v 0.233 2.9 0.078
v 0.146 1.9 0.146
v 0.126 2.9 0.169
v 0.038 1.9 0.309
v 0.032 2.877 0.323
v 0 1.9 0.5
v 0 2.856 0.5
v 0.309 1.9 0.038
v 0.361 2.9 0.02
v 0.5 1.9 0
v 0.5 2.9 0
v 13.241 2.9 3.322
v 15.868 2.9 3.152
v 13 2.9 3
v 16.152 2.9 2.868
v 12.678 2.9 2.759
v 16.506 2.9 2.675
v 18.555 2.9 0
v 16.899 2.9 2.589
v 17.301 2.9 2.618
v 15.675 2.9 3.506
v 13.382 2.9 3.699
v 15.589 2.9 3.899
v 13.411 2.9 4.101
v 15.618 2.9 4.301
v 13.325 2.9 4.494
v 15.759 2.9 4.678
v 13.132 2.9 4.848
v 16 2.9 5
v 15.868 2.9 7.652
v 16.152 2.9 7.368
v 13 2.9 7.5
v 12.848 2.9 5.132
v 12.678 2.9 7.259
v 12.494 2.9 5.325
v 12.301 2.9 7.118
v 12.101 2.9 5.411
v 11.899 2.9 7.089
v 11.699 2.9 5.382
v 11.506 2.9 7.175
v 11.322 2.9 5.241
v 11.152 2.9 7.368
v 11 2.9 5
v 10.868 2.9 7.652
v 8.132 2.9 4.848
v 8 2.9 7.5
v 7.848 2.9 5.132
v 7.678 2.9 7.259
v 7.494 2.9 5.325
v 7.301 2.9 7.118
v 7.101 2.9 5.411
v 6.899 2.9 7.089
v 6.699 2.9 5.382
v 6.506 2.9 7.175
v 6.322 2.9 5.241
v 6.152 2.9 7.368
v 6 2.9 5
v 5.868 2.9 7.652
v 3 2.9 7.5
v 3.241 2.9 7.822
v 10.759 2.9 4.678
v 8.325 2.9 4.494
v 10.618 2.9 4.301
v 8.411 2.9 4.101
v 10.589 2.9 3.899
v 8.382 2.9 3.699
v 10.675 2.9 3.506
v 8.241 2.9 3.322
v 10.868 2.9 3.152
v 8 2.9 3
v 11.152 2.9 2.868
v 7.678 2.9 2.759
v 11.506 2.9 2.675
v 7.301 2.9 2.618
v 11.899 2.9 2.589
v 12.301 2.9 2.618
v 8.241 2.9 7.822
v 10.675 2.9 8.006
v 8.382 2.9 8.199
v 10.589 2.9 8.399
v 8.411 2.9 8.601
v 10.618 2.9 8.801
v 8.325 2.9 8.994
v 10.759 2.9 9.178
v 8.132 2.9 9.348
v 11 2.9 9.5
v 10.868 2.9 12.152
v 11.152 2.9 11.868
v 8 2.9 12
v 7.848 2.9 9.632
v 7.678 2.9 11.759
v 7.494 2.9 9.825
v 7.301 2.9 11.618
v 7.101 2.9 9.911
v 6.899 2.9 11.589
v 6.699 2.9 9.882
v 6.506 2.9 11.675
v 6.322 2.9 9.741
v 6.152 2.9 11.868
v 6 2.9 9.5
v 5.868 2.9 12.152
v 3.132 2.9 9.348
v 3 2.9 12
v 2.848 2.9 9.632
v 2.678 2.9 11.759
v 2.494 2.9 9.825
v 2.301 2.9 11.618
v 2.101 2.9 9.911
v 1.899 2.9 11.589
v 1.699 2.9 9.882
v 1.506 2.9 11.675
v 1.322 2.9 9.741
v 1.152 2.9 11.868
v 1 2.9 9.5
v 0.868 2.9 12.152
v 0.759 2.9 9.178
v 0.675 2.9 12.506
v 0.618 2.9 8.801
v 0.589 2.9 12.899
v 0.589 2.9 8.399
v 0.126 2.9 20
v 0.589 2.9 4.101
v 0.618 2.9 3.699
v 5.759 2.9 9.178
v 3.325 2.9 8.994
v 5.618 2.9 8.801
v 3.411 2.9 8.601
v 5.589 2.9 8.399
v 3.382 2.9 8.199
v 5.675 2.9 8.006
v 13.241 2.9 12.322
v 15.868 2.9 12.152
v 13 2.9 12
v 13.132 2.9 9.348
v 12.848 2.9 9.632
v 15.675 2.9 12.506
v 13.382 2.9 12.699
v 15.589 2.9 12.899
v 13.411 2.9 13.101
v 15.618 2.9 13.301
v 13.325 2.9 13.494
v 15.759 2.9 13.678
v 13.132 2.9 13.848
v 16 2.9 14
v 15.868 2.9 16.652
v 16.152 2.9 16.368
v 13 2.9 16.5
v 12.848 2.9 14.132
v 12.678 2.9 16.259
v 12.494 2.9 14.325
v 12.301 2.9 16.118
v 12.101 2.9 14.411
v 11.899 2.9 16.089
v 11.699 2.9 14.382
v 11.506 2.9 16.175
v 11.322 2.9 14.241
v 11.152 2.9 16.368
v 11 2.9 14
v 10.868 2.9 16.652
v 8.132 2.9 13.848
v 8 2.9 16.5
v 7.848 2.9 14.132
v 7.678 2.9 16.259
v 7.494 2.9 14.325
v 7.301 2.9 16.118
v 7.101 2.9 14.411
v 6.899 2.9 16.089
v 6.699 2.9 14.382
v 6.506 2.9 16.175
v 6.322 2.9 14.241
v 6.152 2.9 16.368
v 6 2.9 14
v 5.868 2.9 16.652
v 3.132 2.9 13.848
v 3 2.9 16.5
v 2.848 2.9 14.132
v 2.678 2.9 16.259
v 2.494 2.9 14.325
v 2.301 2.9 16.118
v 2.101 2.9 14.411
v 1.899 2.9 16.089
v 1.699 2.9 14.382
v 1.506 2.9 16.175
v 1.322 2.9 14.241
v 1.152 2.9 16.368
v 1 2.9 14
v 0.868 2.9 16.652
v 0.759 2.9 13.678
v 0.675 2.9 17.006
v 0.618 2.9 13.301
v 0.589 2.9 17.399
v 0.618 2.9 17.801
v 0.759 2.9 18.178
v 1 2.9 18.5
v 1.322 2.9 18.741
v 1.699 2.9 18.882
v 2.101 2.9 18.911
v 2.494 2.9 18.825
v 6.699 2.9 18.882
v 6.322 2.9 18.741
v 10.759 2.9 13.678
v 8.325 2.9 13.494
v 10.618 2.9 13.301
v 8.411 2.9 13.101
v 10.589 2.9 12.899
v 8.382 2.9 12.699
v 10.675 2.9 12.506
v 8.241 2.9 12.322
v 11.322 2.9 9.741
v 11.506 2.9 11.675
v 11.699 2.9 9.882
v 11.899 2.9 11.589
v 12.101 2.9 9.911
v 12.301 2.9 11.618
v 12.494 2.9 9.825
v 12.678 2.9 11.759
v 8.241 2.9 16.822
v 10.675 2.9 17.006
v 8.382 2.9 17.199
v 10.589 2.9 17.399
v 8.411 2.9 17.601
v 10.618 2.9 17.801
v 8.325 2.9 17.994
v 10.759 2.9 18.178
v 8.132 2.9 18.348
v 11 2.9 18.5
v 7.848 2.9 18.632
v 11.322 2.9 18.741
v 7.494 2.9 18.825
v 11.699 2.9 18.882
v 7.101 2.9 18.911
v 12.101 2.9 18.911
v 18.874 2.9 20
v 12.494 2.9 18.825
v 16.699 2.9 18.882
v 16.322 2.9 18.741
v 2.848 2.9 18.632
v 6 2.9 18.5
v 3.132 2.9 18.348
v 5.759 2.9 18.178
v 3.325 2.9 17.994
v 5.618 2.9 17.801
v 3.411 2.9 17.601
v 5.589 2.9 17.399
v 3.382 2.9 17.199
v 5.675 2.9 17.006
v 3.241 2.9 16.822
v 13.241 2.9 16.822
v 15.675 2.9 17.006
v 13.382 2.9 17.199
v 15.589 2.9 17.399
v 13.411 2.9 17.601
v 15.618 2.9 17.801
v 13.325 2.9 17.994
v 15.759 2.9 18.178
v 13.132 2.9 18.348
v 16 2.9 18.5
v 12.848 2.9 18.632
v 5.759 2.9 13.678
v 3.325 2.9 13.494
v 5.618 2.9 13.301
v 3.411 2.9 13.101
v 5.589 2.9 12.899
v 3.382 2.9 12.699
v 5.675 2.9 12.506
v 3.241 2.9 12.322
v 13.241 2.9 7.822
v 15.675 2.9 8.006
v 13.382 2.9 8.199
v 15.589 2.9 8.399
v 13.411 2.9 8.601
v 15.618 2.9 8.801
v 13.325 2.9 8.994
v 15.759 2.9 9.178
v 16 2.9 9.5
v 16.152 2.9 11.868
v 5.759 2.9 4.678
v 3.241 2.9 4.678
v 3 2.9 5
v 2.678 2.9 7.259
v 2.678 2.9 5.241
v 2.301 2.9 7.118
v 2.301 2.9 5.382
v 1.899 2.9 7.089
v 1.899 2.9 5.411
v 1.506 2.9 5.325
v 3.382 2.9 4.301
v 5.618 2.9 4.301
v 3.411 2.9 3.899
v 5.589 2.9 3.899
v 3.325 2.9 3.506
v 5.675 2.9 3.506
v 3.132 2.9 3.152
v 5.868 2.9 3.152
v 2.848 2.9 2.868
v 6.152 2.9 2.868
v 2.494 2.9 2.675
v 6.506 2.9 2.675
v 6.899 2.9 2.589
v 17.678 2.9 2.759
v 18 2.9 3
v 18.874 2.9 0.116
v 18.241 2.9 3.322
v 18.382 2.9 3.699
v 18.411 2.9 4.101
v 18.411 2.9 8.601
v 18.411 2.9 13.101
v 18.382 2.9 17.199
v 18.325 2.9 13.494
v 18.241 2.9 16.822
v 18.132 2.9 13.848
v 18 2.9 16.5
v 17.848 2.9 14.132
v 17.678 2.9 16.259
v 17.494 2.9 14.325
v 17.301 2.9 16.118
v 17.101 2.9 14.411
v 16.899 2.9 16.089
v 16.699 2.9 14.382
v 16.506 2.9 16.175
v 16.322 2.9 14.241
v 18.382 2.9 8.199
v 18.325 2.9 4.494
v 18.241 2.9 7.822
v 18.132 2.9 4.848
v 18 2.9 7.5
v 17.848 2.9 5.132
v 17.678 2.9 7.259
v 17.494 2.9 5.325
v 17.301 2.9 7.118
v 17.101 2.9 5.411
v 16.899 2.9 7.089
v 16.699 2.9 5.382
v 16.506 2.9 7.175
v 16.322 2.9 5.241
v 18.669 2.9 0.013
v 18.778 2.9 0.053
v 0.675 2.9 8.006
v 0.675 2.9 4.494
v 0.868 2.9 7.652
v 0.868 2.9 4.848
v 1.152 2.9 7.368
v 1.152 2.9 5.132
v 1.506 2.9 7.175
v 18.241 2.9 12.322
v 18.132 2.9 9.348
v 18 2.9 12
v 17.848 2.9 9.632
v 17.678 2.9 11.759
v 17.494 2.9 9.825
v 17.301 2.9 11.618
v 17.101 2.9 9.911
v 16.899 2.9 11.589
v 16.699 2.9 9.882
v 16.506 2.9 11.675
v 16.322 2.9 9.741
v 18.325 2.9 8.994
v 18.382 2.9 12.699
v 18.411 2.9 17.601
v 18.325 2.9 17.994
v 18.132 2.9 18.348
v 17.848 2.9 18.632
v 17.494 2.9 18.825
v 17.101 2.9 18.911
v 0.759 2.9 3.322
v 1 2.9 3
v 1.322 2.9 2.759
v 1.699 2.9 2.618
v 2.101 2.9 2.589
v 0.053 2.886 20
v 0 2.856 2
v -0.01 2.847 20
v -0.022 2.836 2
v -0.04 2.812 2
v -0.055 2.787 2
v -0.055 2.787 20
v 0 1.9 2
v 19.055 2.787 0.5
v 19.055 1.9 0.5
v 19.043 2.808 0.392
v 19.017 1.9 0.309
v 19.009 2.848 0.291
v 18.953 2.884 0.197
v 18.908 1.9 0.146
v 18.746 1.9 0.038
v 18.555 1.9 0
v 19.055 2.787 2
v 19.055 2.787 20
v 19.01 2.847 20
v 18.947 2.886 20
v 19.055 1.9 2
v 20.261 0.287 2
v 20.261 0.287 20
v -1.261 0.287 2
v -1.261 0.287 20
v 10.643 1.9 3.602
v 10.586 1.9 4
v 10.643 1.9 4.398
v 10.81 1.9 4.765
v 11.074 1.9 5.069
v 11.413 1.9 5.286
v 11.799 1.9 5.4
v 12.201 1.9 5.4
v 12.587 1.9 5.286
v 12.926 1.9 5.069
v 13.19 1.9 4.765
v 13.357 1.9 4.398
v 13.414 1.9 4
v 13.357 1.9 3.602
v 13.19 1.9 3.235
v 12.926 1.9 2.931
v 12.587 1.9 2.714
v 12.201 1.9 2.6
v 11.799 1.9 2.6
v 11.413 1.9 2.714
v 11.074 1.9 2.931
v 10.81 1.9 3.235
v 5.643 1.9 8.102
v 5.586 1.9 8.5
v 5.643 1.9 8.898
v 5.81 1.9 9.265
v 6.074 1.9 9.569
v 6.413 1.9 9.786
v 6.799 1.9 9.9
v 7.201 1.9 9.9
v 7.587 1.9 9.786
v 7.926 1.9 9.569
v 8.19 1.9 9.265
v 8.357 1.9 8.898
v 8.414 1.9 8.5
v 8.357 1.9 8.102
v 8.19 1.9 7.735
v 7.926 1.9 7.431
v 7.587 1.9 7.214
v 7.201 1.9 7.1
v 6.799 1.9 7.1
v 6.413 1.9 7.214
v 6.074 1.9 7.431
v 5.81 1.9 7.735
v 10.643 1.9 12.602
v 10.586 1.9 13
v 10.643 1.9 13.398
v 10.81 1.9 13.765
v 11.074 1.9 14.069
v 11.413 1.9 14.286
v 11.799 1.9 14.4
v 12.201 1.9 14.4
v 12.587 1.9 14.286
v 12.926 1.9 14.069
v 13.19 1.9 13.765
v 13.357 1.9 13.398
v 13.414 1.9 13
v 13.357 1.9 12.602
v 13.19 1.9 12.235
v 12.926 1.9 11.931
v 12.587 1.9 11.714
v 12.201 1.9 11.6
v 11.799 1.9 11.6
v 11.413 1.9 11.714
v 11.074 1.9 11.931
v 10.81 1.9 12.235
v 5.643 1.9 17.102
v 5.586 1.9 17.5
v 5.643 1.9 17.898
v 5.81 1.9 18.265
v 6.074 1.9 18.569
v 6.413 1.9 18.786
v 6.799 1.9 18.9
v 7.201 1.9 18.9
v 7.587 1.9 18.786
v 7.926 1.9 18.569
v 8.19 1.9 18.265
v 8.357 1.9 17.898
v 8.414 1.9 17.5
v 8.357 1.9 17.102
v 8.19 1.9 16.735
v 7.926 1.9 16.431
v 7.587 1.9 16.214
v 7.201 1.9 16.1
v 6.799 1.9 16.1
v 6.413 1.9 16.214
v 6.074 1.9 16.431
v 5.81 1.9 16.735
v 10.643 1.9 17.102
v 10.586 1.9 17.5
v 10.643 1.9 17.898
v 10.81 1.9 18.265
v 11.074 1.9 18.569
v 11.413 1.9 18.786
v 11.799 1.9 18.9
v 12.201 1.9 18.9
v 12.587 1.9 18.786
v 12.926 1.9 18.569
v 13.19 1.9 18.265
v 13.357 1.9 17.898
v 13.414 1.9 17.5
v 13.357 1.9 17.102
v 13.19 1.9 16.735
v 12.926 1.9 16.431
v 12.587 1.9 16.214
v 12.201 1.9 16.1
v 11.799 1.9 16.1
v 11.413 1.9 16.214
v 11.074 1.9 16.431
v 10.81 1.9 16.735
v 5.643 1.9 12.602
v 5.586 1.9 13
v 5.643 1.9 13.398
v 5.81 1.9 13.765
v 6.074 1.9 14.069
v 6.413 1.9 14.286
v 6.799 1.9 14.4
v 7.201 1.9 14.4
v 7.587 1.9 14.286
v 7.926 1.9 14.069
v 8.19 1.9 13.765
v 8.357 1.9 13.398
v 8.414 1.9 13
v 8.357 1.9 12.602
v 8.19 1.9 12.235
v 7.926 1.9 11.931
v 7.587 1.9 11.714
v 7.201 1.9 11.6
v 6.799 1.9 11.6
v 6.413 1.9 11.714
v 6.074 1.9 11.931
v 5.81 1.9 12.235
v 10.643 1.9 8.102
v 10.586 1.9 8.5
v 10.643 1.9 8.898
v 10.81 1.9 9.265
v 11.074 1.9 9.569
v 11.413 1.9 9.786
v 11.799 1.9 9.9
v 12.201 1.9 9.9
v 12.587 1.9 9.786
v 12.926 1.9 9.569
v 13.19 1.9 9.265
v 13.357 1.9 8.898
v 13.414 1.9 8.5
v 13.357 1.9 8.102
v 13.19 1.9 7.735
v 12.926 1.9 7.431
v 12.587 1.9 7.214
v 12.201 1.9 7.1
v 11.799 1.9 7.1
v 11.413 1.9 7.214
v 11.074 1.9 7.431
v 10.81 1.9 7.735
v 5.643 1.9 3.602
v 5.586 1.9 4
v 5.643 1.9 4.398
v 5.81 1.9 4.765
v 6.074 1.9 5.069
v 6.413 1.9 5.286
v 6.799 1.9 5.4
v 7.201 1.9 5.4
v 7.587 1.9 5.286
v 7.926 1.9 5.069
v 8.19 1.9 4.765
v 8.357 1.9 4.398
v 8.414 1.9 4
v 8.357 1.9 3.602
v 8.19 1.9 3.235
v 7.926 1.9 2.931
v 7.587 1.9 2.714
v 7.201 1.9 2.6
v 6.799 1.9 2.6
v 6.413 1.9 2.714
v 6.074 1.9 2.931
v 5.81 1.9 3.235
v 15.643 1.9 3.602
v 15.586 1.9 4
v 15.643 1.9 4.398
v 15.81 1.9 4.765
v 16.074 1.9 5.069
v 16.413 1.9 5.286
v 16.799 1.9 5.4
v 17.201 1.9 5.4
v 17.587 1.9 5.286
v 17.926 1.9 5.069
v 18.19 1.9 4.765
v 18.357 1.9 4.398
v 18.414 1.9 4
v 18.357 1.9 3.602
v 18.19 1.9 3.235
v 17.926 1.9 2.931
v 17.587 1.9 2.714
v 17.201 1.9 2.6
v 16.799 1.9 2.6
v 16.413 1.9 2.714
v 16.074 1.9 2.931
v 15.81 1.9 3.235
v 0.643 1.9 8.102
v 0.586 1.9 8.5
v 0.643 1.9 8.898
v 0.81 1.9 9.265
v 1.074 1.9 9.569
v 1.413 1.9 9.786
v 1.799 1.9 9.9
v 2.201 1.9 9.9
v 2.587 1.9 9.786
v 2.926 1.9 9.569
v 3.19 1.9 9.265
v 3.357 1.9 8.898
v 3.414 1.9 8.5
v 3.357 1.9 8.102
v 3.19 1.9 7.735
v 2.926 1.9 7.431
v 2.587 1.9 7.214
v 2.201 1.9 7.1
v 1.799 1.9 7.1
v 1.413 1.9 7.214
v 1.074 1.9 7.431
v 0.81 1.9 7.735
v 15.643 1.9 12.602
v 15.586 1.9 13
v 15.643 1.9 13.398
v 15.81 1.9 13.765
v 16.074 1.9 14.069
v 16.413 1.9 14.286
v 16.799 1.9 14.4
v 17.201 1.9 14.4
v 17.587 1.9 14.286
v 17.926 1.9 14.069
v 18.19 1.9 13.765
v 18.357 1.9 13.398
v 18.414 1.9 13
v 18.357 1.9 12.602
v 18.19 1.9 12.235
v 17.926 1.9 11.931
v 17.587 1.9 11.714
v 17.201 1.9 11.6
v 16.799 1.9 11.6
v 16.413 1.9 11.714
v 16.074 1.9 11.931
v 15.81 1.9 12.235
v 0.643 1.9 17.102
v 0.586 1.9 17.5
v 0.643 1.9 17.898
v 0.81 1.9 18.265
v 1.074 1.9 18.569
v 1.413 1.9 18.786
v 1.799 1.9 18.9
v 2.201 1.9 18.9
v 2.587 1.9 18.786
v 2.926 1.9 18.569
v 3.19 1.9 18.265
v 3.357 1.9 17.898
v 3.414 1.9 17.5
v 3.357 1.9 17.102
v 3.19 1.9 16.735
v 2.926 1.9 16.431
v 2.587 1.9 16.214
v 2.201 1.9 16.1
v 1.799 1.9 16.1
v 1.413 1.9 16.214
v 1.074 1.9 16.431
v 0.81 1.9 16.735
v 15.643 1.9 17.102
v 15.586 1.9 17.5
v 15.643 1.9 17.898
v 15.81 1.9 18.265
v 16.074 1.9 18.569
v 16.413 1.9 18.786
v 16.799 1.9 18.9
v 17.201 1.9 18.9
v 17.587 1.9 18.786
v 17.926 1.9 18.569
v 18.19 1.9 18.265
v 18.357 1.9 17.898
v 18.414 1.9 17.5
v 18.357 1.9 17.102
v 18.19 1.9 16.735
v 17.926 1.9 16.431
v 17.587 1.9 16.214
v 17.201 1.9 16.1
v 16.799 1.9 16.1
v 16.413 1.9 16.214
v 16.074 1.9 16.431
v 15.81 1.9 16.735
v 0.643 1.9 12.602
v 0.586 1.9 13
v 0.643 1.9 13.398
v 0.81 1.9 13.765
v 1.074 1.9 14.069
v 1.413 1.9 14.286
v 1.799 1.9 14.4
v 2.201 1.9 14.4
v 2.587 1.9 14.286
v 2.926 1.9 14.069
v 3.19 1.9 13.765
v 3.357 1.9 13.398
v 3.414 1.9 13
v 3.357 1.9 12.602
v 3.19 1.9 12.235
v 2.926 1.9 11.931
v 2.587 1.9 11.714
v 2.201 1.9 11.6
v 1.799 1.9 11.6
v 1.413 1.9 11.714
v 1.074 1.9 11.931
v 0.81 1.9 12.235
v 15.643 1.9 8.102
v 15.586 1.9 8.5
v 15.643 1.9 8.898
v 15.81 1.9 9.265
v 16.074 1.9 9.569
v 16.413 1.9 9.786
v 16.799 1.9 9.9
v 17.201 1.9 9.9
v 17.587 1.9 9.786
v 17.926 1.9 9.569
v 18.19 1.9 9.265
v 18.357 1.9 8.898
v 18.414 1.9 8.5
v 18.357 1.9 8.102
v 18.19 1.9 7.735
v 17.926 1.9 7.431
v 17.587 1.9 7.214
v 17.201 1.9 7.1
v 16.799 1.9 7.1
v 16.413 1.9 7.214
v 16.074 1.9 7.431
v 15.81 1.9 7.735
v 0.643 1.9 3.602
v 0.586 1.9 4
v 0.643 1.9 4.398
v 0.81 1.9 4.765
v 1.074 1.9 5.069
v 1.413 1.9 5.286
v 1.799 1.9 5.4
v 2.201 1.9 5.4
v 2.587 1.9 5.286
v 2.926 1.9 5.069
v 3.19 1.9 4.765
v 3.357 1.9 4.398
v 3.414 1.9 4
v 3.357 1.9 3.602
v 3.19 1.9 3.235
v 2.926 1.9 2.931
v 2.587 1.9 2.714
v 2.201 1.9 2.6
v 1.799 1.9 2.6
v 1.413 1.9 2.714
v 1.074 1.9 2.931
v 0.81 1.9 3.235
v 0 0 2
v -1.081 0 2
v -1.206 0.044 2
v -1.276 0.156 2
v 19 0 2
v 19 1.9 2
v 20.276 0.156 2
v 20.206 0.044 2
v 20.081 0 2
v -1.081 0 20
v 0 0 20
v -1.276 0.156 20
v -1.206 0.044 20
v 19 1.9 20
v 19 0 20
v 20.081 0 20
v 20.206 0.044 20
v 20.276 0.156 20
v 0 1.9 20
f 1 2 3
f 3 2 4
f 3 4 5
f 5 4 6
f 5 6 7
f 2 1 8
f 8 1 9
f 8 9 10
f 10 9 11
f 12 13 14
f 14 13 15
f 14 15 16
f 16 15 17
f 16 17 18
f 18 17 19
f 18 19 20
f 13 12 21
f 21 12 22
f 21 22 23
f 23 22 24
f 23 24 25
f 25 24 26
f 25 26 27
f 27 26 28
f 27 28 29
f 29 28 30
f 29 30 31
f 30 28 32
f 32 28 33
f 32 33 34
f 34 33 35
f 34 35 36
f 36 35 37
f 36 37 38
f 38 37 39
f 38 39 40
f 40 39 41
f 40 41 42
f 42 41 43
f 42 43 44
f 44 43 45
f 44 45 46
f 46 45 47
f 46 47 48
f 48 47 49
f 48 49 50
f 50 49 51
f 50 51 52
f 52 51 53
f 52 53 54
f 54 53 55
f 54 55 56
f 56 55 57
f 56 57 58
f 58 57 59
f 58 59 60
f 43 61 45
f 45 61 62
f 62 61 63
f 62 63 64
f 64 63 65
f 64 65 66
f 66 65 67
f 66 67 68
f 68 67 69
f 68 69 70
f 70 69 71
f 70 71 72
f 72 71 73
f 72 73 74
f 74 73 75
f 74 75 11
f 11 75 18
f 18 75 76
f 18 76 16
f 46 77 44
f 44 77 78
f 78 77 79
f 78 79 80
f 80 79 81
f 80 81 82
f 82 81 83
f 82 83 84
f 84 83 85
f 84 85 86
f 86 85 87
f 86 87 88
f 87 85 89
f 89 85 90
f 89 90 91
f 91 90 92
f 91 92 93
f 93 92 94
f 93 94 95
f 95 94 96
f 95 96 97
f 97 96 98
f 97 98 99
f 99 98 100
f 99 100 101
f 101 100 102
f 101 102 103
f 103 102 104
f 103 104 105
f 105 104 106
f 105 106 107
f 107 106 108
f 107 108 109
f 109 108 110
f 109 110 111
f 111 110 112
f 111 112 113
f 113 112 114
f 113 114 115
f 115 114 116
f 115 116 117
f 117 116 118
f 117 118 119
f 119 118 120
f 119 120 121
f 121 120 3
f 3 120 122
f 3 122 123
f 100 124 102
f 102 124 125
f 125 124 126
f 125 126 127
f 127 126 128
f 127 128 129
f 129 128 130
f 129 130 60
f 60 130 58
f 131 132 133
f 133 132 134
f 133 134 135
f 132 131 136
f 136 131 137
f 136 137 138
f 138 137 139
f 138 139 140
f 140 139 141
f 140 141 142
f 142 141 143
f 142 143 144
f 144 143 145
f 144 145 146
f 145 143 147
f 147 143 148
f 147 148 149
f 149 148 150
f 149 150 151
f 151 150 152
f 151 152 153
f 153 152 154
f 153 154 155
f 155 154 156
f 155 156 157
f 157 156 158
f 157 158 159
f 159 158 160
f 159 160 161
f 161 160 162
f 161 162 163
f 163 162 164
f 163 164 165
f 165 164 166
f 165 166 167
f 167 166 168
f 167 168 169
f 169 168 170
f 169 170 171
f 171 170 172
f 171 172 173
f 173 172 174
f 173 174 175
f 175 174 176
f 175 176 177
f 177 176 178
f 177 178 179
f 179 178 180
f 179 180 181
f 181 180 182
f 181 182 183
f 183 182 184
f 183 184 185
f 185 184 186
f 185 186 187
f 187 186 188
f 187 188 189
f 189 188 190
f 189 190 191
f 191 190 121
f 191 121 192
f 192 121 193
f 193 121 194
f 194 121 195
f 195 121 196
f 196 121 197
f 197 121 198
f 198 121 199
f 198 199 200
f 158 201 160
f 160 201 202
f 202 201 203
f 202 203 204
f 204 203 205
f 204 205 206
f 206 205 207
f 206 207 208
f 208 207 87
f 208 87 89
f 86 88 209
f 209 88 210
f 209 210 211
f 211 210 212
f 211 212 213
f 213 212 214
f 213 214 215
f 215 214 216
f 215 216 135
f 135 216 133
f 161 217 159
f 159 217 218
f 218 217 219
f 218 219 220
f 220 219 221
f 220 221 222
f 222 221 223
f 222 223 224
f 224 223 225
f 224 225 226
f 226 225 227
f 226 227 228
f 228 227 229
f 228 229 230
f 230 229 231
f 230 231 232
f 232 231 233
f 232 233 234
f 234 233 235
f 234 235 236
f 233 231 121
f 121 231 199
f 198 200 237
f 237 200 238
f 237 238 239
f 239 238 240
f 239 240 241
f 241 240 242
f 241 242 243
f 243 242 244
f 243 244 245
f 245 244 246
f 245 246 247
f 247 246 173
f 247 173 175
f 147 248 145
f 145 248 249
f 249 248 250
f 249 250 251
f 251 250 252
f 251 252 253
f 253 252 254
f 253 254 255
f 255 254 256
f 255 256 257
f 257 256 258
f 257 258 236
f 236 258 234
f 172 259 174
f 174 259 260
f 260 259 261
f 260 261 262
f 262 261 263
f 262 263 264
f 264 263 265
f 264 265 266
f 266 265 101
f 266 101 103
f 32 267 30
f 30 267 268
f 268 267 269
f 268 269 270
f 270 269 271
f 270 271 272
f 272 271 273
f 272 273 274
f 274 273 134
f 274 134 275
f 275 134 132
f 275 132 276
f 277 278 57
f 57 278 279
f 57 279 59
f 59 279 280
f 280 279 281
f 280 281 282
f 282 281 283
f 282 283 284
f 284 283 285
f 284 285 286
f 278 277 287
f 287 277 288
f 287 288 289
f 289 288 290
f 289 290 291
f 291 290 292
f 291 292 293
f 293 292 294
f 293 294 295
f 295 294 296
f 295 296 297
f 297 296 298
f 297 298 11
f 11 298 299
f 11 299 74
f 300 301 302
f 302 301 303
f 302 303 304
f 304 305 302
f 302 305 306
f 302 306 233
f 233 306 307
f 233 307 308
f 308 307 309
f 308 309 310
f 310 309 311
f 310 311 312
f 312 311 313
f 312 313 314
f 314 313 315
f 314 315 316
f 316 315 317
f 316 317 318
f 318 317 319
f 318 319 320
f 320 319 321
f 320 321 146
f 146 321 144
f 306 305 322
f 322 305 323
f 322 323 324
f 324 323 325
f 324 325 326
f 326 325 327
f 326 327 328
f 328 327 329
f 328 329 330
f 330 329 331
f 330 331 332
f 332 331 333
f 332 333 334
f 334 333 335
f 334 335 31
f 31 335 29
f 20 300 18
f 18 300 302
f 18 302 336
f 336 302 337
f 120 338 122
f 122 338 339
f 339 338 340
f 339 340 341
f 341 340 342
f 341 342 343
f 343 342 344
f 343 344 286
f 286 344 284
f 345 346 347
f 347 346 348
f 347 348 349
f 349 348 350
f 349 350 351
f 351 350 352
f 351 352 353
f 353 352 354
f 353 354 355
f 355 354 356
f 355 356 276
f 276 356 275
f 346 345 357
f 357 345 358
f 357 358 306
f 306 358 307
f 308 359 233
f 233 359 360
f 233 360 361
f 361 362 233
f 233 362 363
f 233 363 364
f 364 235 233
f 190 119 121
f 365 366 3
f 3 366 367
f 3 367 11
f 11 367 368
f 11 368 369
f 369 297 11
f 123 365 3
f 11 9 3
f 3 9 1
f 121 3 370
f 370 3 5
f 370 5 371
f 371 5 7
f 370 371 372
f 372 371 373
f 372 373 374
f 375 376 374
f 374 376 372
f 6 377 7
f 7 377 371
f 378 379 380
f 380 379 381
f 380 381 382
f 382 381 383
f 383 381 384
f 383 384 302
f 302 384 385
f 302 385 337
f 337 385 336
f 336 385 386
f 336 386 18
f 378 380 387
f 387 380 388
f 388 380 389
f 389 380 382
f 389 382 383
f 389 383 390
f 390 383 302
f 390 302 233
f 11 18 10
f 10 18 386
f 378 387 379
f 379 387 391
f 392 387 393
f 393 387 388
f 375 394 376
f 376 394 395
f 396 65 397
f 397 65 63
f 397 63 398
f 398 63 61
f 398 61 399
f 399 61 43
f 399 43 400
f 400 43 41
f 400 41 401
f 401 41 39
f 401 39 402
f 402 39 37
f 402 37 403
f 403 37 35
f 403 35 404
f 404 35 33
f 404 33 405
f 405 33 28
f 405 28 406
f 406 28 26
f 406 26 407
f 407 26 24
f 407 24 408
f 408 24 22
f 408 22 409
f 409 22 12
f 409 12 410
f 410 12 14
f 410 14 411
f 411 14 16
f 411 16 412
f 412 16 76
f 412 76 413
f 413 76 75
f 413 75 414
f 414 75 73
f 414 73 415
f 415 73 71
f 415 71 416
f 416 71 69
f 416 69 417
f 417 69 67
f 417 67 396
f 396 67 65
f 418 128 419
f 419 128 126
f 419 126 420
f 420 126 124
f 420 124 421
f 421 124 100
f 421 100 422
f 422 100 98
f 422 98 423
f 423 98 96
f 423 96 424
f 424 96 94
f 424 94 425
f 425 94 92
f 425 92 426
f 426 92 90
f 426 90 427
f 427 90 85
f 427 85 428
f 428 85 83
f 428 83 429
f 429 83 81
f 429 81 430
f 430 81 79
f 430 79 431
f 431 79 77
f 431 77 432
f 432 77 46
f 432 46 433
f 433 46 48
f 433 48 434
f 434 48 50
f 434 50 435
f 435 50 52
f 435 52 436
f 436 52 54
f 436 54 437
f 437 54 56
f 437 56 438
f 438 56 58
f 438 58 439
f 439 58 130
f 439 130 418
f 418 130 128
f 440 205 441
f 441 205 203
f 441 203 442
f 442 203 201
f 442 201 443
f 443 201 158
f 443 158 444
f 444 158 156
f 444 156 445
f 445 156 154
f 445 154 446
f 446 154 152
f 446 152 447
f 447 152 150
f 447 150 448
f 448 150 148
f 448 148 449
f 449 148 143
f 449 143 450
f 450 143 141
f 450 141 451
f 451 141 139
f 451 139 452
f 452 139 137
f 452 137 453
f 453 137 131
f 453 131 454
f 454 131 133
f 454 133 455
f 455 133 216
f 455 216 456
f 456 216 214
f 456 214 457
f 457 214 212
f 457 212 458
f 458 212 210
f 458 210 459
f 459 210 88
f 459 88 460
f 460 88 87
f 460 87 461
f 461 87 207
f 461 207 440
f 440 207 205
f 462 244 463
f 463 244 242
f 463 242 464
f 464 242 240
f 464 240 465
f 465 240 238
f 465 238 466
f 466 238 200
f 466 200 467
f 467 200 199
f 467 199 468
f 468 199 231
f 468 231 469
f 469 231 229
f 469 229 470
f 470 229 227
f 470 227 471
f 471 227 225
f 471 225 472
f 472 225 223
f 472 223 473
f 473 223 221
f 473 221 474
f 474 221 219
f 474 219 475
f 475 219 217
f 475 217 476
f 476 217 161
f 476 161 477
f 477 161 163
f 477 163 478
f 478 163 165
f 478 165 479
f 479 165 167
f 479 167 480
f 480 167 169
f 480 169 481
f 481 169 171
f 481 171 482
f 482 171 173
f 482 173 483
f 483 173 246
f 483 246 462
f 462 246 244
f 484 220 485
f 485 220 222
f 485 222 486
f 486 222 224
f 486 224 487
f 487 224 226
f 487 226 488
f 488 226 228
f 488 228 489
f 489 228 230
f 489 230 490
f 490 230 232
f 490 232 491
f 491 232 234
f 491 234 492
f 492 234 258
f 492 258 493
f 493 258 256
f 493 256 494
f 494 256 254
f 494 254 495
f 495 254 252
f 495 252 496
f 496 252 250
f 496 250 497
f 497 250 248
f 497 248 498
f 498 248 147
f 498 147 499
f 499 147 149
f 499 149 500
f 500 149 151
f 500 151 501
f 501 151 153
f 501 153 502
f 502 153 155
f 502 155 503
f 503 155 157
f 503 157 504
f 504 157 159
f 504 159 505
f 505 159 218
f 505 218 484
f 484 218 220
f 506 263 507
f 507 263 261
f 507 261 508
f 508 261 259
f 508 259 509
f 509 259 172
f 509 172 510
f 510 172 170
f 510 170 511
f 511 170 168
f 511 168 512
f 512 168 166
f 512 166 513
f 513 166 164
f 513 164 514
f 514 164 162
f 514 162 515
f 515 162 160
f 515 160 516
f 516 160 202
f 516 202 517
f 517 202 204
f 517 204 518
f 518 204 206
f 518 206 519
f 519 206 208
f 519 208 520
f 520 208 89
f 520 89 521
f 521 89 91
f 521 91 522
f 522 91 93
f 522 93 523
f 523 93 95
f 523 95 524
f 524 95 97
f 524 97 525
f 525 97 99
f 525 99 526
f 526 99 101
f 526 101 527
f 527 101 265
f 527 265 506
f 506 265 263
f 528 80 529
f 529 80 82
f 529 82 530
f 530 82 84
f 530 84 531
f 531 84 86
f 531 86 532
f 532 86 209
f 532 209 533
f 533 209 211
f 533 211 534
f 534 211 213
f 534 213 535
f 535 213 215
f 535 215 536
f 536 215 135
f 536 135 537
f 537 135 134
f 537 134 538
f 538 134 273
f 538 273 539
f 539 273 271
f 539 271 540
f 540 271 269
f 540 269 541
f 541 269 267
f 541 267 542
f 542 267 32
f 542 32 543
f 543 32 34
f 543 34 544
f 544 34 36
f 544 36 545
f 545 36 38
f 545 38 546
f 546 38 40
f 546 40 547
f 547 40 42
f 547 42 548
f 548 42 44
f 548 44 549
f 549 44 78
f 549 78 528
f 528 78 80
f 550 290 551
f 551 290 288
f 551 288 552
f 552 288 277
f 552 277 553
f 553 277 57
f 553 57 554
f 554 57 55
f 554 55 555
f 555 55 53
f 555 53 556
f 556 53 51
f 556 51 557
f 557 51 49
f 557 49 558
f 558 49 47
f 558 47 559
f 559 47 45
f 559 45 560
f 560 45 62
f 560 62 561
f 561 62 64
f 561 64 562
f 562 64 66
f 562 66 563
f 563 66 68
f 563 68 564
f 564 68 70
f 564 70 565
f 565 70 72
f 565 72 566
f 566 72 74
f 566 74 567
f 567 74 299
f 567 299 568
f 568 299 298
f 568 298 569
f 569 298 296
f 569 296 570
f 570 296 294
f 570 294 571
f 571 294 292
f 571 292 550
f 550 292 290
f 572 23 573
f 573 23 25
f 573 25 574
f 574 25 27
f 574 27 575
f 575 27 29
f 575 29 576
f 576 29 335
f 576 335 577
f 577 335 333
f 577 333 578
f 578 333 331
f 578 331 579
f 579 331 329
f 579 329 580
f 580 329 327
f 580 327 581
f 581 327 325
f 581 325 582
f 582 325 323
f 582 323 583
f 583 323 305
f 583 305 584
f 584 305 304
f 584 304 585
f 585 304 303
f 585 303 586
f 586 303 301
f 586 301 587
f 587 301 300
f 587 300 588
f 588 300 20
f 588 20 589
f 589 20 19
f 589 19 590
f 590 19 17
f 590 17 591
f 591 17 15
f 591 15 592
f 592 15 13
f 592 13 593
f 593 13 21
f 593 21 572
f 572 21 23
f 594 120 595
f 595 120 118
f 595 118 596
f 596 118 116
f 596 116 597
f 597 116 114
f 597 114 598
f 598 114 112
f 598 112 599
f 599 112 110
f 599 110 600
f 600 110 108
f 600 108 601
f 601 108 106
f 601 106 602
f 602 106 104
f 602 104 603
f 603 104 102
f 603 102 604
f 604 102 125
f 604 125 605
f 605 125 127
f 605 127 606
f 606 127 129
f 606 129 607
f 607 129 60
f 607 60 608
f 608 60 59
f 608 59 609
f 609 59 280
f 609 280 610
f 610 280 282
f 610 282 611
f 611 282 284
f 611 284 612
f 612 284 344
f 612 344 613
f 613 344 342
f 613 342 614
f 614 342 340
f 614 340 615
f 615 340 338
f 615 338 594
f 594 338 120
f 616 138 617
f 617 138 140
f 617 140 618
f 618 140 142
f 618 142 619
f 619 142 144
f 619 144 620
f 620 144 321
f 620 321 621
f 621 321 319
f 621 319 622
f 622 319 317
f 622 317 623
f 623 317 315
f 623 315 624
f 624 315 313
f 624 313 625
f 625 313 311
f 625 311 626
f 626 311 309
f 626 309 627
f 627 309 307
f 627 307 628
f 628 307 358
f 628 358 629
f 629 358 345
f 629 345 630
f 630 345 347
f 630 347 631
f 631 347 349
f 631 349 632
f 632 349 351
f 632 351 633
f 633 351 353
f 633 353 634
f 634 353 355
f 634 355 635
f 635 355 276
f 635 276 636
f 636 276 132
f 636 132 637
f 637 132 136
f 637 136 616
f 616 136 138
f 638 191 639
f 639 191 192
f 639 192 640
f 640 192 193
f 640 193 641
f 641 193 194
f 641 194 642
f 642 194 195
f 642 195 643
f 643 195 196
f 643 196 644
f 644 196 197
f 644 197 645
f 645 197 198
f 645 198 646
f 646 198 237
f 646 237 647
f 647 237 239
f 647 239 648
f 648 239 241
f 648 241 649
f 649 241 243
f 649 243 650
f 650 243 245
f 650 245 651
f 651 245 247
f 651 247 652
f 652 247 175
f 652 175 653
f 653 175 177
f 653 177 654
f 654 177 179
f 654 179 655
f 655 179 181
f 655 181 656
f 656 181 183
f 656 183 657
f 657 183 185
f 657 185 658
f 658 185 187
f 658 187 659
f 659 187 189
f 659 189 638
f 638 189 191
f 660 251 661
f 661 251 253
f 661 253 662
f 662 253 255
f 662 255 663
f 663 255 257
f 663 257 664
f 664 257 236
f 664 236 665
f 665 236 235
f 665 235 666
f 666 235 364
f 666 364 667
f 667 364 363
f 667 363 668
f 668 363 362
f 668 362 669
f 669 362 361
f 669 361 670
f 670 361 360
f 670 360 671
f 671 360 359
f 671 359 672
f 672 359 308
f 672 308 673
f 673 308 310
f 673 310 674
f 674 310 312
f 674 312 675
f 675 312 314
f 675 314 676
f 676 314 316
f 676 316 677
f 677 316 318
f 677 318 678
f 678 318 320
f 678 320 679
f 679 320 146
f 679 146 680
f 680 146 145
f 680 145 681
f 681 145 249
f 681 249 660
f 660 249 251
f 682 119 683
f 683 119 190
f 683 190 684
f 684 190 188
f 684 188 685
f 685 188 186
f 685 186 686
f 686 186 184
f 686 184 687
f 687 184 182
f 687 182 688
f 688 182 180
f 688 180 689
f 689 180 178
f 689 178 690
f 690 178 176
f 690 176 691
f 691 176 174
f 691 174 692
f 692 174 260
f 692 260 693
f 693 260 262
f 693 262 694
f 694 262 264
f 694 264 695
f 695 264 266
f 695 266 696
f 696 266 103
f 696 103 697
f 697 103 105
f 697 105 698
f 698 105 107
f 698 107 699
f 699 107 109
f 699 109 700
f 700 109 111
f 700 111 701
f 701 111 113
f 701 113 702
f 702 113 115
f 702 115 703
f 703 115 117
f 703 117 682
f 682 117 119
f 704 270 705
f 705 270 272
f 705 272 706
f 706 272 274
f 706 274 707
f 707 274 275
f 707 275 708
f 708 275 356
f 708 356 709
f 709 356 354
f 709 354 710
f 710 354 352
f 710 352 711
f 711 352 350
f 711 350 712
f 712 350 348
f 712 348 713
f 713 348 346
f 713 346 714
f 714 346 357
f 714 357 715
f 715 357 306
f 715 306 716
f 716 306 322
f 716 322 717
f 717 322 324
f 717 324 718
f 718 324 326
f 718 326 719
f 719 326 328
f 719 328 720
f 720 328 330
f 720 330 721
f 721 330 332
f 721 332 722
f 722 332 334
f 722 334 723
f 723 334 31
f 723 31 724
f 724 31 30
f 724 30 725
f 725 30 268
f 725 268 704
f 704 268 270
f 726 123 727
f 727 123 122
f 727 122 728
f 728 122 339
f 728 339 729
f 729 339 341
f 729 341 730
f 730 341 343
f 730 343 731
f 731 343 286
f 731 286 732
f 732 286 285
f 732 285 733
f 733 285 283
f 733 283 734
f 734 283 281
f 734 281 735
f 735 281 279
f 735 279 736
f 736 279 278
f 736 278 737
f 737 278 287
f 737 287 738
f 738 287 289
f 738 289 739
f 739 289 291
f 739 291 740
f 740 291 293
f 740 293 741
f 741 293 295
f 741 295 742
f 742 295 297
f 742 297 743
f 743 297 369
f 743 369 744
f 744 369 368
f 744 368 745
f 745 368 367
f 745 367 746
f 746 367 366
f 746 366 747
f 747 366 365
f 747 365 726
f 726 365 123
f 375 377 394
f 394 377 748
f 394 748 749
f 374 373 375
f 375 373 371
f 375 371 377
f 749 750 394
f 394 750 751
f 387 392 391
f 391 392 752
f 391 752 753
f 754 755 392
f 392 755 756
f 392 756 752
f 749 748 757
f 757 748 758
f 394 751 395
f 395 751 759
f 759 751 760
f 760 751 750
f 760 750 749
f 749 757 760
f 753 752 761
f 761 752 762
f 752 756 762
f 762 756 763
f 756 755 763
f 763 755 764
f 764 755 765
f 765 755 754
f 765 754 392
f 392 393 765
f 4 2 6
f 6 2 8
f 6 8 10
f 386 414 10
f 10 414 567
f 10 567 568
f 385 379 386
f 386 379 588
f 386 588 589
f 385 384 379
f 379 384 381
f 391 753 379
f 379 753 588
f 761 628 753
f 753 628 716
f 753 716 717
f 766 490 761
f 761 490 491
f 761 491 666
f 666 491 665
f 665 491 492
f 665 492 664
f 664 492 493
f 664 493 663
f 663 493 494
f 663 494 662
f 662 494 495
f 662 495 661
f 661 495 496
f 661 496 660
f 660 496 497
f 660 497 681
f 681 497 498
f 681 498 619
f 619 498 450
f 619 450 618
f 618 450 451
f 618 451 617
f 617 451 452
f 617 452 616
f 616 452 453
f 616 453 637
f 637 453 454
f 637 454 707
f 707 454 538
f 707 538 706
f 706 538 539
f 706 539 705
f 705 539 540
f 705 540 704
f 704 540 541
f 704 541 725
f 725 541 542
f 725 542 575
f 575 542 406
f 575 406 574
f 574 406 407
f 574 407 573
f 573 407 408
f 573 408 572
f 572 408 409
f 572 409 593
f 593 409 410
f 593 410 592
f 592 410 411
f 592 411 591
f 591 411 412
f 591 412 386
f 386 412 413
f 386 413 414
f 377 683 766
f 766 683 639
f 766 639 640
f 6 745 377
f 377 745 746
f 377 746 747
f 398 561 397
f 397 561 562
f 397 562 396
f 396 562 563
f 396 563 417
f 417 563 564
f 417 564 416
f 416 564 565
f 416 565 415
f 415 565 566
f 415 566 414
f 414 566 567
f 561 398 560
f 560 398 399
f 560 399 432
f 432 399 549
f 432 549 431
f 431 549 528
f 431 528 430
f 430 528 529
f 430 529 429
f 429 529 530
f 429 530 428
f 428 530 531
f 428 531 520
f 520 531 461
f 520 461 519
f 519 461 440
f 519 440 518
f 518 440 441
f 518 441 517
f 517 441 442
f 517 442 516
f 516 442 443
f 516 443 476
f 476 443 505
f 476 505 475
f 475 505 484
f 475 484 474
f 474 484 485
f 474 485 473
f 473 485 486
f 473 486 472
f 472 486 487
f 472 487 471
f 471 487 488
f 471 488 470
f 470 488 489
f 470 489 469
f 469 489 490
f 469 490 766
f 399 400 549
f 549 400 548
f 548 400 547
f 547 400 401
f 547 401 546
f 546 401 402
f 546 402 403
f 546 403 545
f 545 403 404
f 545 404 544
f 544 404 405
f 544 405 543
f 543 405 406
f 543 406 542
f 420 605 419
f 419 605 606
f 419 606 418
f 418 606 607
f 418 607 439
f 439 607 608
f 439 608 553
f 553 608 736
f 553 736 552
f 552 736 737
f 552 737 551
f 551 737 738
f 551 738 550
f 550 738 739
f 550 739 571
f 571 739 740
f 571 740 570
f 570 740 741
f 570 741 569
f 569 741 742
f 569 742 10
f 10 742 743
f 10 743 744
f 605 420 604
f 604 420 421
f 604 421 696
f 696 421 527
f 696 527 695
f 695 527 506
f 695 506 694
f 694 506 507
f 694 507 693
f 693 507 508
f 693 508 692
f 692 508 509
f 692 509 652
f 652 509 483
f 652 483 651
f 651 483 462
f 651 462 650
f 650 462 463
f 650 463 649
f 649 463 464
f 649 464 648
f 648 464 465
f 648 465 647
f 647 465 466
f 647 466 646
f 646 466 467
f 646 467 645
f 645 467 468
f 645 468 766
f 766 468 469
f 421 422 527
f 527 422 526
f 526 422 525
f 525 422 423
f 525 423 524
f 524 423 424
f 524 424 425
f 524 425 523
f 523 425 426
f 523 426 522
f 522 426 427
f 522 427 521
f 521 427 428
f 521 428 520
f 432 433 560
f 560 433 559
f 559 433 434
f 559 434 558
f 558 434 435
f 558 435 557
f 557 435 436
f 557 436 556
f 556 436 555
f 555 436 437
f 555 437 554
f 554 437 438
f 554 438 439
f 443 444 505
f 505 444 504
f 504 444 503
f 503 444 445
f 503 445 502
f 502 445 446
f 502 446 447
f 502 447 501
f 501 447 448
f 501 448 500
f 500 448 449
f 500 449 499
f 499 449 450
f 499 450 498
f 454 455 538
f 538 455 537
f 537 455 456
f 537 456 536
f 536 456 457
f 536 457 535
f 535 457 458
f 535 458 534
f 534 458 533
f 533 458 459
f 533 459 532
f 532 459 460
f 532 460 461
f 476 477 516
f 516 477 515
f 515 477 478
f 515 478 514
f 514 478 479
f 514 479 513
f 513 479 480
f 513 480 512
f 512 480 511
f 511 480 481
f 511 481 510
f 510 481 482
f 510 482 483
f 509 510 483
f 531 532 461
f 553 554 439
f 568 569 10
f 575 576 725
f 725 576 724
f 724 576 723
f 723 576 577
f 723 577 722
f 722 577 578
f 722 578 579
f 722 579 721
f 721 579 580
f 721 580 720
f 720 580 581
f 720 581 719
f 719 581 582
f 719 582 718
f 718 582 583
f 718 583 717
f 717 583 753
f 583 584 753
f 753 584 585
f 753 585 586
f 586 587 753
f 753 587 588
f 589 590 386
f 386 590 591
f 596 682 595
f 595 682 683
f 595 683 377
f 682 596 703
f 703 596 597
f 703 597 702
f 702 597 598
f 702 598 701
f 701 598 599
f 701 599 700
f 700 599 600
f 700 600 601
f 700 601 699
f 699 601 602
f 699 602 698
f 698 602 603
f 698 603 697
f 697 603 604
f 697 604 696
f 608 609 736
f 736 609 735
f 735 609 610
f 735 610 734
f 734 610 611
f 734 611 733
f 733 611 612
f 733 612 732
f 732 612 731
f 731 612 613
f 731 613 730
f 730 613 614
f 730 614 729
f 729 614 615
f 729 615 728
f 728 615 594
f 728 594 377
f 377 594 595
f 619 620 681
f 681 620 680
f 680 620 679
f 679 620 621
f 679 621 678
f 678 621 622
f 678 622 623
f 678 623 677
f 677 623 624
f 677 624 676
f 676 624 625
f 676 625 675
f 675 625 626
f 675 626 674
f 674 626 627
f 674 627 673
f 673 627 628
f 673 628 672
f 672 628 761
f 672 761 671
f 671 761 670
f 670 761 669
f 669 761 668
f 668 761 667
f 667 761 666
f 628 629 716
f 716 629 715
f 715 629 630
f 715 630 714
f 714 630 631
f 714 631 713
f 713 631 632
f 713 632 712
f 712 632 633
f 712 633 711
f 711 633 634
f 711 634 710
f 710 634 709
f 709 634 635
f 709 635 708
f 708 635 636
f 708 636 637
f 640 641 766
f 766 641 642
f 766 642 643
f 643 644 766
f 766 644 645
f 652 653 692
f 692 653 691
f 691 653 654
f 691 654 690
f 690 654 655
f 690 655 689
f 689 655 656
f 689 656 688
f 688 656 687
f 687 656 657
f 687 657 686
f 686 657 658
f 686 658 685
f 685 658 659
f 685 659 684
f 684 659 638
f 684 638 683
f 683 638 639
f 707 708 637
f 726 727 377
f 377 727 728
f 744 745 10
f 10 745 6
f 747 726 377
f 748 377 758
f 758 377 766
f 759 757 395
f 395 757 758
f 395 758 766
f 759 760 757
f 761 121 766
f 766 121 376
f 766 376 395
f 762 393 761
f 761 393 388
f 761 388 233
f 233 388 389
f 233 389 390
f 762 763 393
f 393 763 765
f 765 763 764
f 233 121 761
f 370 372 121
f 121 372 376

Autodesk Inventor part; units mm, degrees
ref_plane "YZ Plane" through (0, 0, 0) normal (1, 0, 0) x (0, 1, 0)
ref_plane "XZ Plane" through (0, 0, 0) normal (0, 1, 0) x (-1, 0, 0)
ref_plane "XY Plane" through (0, 0, 0) normal (0, 0, 1) x (1, 0, 0)
sketch "Sketch1" plane through (0, 0, 0) normal (0, 0, 1) x (1, 0, 0)
  line L0 (0, 0) -> (19, 0)
  line L1 (19, 0) -> (20.4, 0)
  line L2 (0, 0) -> (-1.4, 0)
  line L3 (0, 0) -> (0, 1.9)
  line L4 (-1.4, 0) -> (0, 2.9)
  line L5 (19, 0) -> (19, 1.9)
  line L6 (19, 2.9) -> (20.4, 0)
  line L7 (0, 2.9) -> (19, 2.9)
  line L8 (0, 1.9) -> (19, 1.9)
  dimension "d0" = 19
  dimension "d1" = 1.4
  dimension "d2" = 1.4
  dimension "d3" = 2.9
  dimension "d4" = 2.9
  dimension "d5" = 1
extrude "Extrusion1" add sketch "Sketch1" along normal blind 20 contours L2 L4 L7 L6 L1 L5 L8 L3
fillet "Fillet1" radius 0.2 4 edges at (0, 2.9, 10) (19, 2.9, 10) (20.4, 0, 10) (-1.4, 0, 10)
sketch "Sketch2" plane through (0, 1.9, 0) normal (0, -1, 0) x (1, 0, 0)
  line L0 (-1.2814, 0) -> (-1.2814, 20) projected
  line L1 (0, 0) -> (0, 20) projected
  line L2 (-1.2814, 0) -> (0, 0)
  line L3 (0, 0) -> (0, 2)
  line L4 (0, 2) -> (-1.2814, 2)
  line L5 (-1.2814, 2) -> (-1.2814, 0)
  line L6 (19, 0) -> (19, 20) projected
  line L7 (20.2814, 0) -> (20.2814, 20) projected
  line L8 (19, 0) -> (20.2814, 0)
  line L9 (20.2814, 0) -> (20.2814, 2)
  line L10 (20.2814, 2) -> (19, 2)
  line L11 (19, 2) -> (19, 0)
  dimension "d9" = 2
  dimension "d10" = 2
extrude "Extrusion2" cut sketch "Sketch2" along normal blind 20
sketch "Sketch3" plane through (0.1255, 2.9, 0) normal (0, 1, 0) x (1, 0, 0)
  line L0 (-0.1255, -2) -> (-0.6083, -2) projected
  line L1 (18.7489, 0) -> (18.7489, -20) projected
  line L2 (-0.1255, -2) -> (18.7489, -2)
  line L3 (18.7489, -2) -> (18.7489, -20)
  line L4 (18.7489, -20) -> (-0.1255, -20)
  line L5 (-0.1255, -20) -> (-0.1255, -2)
  line L6 (-0.1255, -2) -> (-0.1255, -20) projected
  line L7 (-0.1255, -2) -> (1.8745, -2)
  line L8 (1.8745, -2) -> (1.8745, -4)
  line L9 (0.8745, -5) -> (2.8745, -5)
  line L10 (2.8745, -5) -> (2.8745, -3)
  line L11 (2.8745, -3) -> (0.8745, -3)
  line L12 (0.8745, -3) -> (0.8745, -5)
  line L13 (0.8745, -5) -> (2.8745, -3) construction
  line L14 (2.8745, -5) -> (0.8745, -3) construction
  line L15 (7.8745, -3) -> (5.8745, -3)
  line L16 (5.8745, -3) -> (5.8745, -5)
  line L17 (7.8745, -5) -> (7.8745, -3)
  line L18 (5.8745, -5) -> (7.8745, -5)
  line L19 (12.8745, -3) -> (10.8745, -3)
  line L20 (10.8745, -3) -> (10.8745, -5)
  line L21 (12.8745, -5) -> (12.8745, -3)
  line L22 (10.8745, -5) -> (12.8745, -5)
  line L23 (17.8745, -3) -> (15.8745, -3)
  line L24 (15.8745, -3) -> (15.8745, -5)
  line L25 (17.8745, -5) -> (17.8745, -3)
  line L26 (15.8745, -5) -> (17.8745, -5)
  line L27 (2.8745, -7.5) -> (0.8745, -7.5)
  line L28 (0.8745, -7.5) -> (0.8745, -9.5)
  line L29 (2.8745, -9.5) -> (2.8745, -7.5)
  line L30 (0.8745, -9.5) -> (2.8745, -9.5)
  line L31 (7.8745, -7.5) -> (5.8745, -7.5)
  line L32 (5.8745, -7.5) -> (5.8745, -9.5)
  line L33 (7.8745, -9.5) -> (7.8745, -7.5)
  line L34 (5.8745, -9.5) -> (7.8745, -9.5)
  line L35 (12.8745, -7.5) -> (10.8745, -7.5)
  line L36 (10.8745, -7.5) -> (10.8745, -9.5)
  line L37 (12.8745, -9.5) -> (12.8745, -7.5)
  line L38 (10.8745, -9.5) -> (12.8745, -9.5)
  line L39 (17.8745, -7.5) -> (15.8745, -7.5)
  line L40 (15.8745, -7.5) -> (15.8745, -9.5)
  line L41 (17.8745, -9.5) -> (17.8745, -7.5)
  line L42 (15.8745, -9.5) -> (17.8745, -9.5)
  line L43 (2.8745, -12) -> (0.8745, -12)
  line L44 (0.8745, -12) -> (0.8745, -14)
  line L45 (2.8745, -14) -> (2.8745, -12)
  line L46 (0.8745, -14) -> (2.8745, -14)
  line L47 (7.8745, -12) -> (5.8745, -12)
  line L48 (5.8745, -12) -> (5.8745, -14)
  line L49 (7.8745, -14) -> (7.8745, -12)
  line L50 (5.8745, -14) -> (7.8745, -14)
  line L51 (12.8745, -12) -> (10.8745, -12)
  line L52 (10.8745, -12) -> (10.8745, -14)
  line L53 (12.8745, -14) -> (12.8745, -12)
  line L54 (10.8745, -14) -> (12.8745, -14)
  line L55 (17.8745, -12) -> (15.8745, -12)
  line L56 (15.8745, -12) -> (15.8745, -14)
  line L57 (17.8745, -14) -> (17.8745, -12)
  line L58 (15.8745, -14) -> (17.8745, -14)
  line L59 (2.8745, -16.5) -> (0.8745, -16.5)
  line L60 (0.8745, -16.5) -> (0.8745, -18.5)
  line L61 (2.8745, -18.5) -> (2.8745, -16.5)
  line L62 (0.8745, -18.5) -> (2.8745, -18.5)
  line L63 (7.8745, -16.5) -> (5.8745, -16.5)
  line L64 (5.8745, -16.5) -> (5.8745, -18.5)
  line L65 (7.8745, -18.5) -> (7.8745, -16.5)
  line L66 (5.8745, -18.5) -> (7.8745, -18.5)
  line L67 (12.8745, -16.5) -> (10.8745, -16.5)
  line L68 (10.8745, -16.5) -> (10.8745, -18.5)
  line L69 (12.8745, -18.5) -> (12.8745, -16.5)
  line L70 (10.8745, -18.5) -> (12.8745, -18.5)
  line L71 (17.8745, -16.5) -> (15.8745, -16.5)
  line L72 (15.8745, -16.5) -> (15.8745, -18.5)
  line L73 (17.8745, -18.5) -> (17.8745, -16.5)
  line L74 (15.8745, -18.5) -> (17.8745, -18.5)
  circle A0 centre (1.8745, -4) radius 1.4142
  circle A1 centre (6.8745, -4) radius 1.4142
  circle A2 centre (11.8745, -4) radius 1.4142
  circle A3 centre (16.8745, -4) radius 1.4142
  circle A4 centre (1.8745, -8.5) radius 1.4142
  circle A5 centre (6.8745, -8.5) radius 1.4142
  circle A6 centre (11.8745, -8.5) radius 1.4142
  circle A7 centre (16.8745, -8.5) radius 1.4142
  circle A8 centre (1.8745, -13) radius 1.4142
  circle A9 centre (6.8745, -13) radius 1.4142
  circle A10 centre (11.8745, -13) radius 1.4142
  circle A11 centre (16.8745, -13) radius 1.4142
  circle A12 centre (1.8745, -17.5) radius 1.4142
  circle A13 centre (6.8745, -17.5) radius 1.4142
  circle A14 centre (11.8745, -17.5) radius 1.4142
  circle A15 centre (16.8745, -17.5) radius 1.4142
  point P0 (-0.1255, 0)
  dimension "d13" = 2
  dimension "d14" = 2
  dimension "d15" = 2
  dimension "d16" = 2
  dimension "d19" = 5
  dimension "d22" = 4.5
  dimension "d32" = 5
  dimension "d35" = 4.5
extrude "Extrusion3" cut sketch "Sketch3" against normal through all contours A0 L11 L8 | L8 L11 A0 | L11 L10 L9 L12 | A0 L10 | L12 A0 | A0 L9 | L17 L18 L16 L15 | A1 L17 | L15 A1 | L16 A1 | A1 L18 | L21 L22 L20 L19 | A2 L21 | L19 A2 | L20 A2 | A2 L22 | L25 L26 L24 L23 | A3 L25 | L23 A3 | L24 A3 | A3 L26 | L29 L30 L28 L27 | A4 L29 | L27 A4 | L28 A4 | A4 L30 | L33 L34 L32 L31 | A5 L33 | L31 A5 | L32 A5 | A5 L34 | L37 L38 L36 L35 | A6 L37 | L35 A6 | L36 A6 | A6 L38 | L41 L42 L40 L39 | A7 L41 | L39 A7 | L40 A7 | A7 L42 | L45 L46 L44 L43 | A8 L45 | L43 A8 | L44 A8 | A8 L46 | L49 L50 L48 L47 | A9 L49 | L47 A9 | L48 A9 | A9 L50 | L53 L54 L52 L51 | A10 L53 | L51 A10 | L52 A10 | A10 L54 | L57 L58 L56 L55 | A11 L57 | L55 A11 | L56 A11 | A11 L58 | L61 L62 L60 L59 | A12 L61 | L59 A12 | L60 A12 | A12 L62 | L65 L66 L64 L63 | A13 L65 | L63 A13 | L64 A13 | A13 L66 | L69 L70 L68 L67 | A14 L69 | L67 A14 | L68 A14 | A14 L70 | L73 L74 L72 L71 | A15 L73 | L71 A15 | L72 A15 | A15 L74
sketch "Sketch4" plane through (-0.4828, 1.9, 0) normal (0, -1, 0) x (1, 0, 0)
  line L0 (0, 0) -> (0, 2) projected
  line L1 (0, 2) -> (0.4828, 2)
  line L2 (0.4828, 2) -> (0.4828, 0)
  line L3 (0.4828, 0) -> (0, 0)
  line L4 (0, 0) -> (0, 2)
  line L5 (19.9655, 2) -> (19.9655, 0) projected
  line L6 (19.9655, 0) -> (19.5373, 0) projected
  line L7 (19.9655, 2) -> (19.5373, 2)
  line L8 (19.5373, 2) -> (19.5373, 0)
  line L9 (19.5373, 0) -> (19.9655, 0)
  line L10 (19.9655, 0) -> (19.9655, 2)
extrude "Extrusion4" cut sketch "Sketch4" against normal blind 20
fillet "Fillet2" radius 0.5 2 edges at (19.0546, 2.3435, 0) (0, 2.3778, 0)
properties part number "flange2_grip_support"
